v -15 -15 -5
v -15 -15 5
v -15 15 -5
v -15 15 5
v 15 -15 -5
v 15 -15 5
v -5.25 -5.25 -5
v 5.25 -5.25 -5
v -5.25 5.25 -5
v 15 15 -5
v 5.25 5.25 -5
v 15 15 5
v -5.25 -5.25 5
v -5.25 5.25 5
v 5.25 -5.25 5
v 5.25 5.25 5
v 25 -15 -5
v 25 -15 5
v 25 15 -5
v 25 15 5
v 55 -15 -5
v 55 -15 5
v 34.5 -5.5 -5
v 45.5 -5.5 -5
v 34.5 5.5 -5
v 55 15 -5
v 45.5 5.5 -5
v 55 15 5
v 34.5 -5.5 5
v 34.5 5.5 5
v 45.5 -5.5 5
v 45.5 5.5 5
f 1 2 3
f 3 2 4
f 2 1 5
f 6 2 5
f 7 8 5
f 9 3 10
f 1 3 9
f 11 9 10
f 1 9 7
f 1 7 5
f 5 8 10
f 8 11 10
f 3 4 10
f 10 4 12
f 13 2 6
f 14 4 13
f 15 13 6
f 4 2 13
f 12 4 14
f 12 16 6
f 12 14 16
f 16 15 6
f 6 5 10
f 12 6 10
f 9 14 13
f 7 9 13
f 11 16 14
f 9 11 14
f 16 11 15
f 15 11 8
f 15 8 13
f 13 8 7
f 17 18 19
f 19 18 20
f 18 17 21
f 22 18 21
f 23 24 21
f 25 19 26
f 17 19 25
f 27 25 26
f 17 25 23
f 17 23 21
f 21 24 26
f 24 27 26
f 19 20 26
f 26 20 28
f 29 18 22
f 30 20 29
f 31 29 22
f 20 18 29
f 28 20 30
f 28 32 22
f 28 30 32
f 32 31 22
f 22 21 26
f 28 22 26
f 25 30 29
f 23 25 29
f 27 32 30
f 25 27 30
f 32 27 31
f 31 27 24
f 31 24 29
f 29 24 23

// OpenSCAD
difference() {
  cube([30, 30, 10], center=true);
  cube([10.5, 10.5, 15], center=true);
}

translate([40, 0, 0]) difference() {
  cube([30, 30, 10], center=true);
  cube([11, 11, 15], center=true);
}
